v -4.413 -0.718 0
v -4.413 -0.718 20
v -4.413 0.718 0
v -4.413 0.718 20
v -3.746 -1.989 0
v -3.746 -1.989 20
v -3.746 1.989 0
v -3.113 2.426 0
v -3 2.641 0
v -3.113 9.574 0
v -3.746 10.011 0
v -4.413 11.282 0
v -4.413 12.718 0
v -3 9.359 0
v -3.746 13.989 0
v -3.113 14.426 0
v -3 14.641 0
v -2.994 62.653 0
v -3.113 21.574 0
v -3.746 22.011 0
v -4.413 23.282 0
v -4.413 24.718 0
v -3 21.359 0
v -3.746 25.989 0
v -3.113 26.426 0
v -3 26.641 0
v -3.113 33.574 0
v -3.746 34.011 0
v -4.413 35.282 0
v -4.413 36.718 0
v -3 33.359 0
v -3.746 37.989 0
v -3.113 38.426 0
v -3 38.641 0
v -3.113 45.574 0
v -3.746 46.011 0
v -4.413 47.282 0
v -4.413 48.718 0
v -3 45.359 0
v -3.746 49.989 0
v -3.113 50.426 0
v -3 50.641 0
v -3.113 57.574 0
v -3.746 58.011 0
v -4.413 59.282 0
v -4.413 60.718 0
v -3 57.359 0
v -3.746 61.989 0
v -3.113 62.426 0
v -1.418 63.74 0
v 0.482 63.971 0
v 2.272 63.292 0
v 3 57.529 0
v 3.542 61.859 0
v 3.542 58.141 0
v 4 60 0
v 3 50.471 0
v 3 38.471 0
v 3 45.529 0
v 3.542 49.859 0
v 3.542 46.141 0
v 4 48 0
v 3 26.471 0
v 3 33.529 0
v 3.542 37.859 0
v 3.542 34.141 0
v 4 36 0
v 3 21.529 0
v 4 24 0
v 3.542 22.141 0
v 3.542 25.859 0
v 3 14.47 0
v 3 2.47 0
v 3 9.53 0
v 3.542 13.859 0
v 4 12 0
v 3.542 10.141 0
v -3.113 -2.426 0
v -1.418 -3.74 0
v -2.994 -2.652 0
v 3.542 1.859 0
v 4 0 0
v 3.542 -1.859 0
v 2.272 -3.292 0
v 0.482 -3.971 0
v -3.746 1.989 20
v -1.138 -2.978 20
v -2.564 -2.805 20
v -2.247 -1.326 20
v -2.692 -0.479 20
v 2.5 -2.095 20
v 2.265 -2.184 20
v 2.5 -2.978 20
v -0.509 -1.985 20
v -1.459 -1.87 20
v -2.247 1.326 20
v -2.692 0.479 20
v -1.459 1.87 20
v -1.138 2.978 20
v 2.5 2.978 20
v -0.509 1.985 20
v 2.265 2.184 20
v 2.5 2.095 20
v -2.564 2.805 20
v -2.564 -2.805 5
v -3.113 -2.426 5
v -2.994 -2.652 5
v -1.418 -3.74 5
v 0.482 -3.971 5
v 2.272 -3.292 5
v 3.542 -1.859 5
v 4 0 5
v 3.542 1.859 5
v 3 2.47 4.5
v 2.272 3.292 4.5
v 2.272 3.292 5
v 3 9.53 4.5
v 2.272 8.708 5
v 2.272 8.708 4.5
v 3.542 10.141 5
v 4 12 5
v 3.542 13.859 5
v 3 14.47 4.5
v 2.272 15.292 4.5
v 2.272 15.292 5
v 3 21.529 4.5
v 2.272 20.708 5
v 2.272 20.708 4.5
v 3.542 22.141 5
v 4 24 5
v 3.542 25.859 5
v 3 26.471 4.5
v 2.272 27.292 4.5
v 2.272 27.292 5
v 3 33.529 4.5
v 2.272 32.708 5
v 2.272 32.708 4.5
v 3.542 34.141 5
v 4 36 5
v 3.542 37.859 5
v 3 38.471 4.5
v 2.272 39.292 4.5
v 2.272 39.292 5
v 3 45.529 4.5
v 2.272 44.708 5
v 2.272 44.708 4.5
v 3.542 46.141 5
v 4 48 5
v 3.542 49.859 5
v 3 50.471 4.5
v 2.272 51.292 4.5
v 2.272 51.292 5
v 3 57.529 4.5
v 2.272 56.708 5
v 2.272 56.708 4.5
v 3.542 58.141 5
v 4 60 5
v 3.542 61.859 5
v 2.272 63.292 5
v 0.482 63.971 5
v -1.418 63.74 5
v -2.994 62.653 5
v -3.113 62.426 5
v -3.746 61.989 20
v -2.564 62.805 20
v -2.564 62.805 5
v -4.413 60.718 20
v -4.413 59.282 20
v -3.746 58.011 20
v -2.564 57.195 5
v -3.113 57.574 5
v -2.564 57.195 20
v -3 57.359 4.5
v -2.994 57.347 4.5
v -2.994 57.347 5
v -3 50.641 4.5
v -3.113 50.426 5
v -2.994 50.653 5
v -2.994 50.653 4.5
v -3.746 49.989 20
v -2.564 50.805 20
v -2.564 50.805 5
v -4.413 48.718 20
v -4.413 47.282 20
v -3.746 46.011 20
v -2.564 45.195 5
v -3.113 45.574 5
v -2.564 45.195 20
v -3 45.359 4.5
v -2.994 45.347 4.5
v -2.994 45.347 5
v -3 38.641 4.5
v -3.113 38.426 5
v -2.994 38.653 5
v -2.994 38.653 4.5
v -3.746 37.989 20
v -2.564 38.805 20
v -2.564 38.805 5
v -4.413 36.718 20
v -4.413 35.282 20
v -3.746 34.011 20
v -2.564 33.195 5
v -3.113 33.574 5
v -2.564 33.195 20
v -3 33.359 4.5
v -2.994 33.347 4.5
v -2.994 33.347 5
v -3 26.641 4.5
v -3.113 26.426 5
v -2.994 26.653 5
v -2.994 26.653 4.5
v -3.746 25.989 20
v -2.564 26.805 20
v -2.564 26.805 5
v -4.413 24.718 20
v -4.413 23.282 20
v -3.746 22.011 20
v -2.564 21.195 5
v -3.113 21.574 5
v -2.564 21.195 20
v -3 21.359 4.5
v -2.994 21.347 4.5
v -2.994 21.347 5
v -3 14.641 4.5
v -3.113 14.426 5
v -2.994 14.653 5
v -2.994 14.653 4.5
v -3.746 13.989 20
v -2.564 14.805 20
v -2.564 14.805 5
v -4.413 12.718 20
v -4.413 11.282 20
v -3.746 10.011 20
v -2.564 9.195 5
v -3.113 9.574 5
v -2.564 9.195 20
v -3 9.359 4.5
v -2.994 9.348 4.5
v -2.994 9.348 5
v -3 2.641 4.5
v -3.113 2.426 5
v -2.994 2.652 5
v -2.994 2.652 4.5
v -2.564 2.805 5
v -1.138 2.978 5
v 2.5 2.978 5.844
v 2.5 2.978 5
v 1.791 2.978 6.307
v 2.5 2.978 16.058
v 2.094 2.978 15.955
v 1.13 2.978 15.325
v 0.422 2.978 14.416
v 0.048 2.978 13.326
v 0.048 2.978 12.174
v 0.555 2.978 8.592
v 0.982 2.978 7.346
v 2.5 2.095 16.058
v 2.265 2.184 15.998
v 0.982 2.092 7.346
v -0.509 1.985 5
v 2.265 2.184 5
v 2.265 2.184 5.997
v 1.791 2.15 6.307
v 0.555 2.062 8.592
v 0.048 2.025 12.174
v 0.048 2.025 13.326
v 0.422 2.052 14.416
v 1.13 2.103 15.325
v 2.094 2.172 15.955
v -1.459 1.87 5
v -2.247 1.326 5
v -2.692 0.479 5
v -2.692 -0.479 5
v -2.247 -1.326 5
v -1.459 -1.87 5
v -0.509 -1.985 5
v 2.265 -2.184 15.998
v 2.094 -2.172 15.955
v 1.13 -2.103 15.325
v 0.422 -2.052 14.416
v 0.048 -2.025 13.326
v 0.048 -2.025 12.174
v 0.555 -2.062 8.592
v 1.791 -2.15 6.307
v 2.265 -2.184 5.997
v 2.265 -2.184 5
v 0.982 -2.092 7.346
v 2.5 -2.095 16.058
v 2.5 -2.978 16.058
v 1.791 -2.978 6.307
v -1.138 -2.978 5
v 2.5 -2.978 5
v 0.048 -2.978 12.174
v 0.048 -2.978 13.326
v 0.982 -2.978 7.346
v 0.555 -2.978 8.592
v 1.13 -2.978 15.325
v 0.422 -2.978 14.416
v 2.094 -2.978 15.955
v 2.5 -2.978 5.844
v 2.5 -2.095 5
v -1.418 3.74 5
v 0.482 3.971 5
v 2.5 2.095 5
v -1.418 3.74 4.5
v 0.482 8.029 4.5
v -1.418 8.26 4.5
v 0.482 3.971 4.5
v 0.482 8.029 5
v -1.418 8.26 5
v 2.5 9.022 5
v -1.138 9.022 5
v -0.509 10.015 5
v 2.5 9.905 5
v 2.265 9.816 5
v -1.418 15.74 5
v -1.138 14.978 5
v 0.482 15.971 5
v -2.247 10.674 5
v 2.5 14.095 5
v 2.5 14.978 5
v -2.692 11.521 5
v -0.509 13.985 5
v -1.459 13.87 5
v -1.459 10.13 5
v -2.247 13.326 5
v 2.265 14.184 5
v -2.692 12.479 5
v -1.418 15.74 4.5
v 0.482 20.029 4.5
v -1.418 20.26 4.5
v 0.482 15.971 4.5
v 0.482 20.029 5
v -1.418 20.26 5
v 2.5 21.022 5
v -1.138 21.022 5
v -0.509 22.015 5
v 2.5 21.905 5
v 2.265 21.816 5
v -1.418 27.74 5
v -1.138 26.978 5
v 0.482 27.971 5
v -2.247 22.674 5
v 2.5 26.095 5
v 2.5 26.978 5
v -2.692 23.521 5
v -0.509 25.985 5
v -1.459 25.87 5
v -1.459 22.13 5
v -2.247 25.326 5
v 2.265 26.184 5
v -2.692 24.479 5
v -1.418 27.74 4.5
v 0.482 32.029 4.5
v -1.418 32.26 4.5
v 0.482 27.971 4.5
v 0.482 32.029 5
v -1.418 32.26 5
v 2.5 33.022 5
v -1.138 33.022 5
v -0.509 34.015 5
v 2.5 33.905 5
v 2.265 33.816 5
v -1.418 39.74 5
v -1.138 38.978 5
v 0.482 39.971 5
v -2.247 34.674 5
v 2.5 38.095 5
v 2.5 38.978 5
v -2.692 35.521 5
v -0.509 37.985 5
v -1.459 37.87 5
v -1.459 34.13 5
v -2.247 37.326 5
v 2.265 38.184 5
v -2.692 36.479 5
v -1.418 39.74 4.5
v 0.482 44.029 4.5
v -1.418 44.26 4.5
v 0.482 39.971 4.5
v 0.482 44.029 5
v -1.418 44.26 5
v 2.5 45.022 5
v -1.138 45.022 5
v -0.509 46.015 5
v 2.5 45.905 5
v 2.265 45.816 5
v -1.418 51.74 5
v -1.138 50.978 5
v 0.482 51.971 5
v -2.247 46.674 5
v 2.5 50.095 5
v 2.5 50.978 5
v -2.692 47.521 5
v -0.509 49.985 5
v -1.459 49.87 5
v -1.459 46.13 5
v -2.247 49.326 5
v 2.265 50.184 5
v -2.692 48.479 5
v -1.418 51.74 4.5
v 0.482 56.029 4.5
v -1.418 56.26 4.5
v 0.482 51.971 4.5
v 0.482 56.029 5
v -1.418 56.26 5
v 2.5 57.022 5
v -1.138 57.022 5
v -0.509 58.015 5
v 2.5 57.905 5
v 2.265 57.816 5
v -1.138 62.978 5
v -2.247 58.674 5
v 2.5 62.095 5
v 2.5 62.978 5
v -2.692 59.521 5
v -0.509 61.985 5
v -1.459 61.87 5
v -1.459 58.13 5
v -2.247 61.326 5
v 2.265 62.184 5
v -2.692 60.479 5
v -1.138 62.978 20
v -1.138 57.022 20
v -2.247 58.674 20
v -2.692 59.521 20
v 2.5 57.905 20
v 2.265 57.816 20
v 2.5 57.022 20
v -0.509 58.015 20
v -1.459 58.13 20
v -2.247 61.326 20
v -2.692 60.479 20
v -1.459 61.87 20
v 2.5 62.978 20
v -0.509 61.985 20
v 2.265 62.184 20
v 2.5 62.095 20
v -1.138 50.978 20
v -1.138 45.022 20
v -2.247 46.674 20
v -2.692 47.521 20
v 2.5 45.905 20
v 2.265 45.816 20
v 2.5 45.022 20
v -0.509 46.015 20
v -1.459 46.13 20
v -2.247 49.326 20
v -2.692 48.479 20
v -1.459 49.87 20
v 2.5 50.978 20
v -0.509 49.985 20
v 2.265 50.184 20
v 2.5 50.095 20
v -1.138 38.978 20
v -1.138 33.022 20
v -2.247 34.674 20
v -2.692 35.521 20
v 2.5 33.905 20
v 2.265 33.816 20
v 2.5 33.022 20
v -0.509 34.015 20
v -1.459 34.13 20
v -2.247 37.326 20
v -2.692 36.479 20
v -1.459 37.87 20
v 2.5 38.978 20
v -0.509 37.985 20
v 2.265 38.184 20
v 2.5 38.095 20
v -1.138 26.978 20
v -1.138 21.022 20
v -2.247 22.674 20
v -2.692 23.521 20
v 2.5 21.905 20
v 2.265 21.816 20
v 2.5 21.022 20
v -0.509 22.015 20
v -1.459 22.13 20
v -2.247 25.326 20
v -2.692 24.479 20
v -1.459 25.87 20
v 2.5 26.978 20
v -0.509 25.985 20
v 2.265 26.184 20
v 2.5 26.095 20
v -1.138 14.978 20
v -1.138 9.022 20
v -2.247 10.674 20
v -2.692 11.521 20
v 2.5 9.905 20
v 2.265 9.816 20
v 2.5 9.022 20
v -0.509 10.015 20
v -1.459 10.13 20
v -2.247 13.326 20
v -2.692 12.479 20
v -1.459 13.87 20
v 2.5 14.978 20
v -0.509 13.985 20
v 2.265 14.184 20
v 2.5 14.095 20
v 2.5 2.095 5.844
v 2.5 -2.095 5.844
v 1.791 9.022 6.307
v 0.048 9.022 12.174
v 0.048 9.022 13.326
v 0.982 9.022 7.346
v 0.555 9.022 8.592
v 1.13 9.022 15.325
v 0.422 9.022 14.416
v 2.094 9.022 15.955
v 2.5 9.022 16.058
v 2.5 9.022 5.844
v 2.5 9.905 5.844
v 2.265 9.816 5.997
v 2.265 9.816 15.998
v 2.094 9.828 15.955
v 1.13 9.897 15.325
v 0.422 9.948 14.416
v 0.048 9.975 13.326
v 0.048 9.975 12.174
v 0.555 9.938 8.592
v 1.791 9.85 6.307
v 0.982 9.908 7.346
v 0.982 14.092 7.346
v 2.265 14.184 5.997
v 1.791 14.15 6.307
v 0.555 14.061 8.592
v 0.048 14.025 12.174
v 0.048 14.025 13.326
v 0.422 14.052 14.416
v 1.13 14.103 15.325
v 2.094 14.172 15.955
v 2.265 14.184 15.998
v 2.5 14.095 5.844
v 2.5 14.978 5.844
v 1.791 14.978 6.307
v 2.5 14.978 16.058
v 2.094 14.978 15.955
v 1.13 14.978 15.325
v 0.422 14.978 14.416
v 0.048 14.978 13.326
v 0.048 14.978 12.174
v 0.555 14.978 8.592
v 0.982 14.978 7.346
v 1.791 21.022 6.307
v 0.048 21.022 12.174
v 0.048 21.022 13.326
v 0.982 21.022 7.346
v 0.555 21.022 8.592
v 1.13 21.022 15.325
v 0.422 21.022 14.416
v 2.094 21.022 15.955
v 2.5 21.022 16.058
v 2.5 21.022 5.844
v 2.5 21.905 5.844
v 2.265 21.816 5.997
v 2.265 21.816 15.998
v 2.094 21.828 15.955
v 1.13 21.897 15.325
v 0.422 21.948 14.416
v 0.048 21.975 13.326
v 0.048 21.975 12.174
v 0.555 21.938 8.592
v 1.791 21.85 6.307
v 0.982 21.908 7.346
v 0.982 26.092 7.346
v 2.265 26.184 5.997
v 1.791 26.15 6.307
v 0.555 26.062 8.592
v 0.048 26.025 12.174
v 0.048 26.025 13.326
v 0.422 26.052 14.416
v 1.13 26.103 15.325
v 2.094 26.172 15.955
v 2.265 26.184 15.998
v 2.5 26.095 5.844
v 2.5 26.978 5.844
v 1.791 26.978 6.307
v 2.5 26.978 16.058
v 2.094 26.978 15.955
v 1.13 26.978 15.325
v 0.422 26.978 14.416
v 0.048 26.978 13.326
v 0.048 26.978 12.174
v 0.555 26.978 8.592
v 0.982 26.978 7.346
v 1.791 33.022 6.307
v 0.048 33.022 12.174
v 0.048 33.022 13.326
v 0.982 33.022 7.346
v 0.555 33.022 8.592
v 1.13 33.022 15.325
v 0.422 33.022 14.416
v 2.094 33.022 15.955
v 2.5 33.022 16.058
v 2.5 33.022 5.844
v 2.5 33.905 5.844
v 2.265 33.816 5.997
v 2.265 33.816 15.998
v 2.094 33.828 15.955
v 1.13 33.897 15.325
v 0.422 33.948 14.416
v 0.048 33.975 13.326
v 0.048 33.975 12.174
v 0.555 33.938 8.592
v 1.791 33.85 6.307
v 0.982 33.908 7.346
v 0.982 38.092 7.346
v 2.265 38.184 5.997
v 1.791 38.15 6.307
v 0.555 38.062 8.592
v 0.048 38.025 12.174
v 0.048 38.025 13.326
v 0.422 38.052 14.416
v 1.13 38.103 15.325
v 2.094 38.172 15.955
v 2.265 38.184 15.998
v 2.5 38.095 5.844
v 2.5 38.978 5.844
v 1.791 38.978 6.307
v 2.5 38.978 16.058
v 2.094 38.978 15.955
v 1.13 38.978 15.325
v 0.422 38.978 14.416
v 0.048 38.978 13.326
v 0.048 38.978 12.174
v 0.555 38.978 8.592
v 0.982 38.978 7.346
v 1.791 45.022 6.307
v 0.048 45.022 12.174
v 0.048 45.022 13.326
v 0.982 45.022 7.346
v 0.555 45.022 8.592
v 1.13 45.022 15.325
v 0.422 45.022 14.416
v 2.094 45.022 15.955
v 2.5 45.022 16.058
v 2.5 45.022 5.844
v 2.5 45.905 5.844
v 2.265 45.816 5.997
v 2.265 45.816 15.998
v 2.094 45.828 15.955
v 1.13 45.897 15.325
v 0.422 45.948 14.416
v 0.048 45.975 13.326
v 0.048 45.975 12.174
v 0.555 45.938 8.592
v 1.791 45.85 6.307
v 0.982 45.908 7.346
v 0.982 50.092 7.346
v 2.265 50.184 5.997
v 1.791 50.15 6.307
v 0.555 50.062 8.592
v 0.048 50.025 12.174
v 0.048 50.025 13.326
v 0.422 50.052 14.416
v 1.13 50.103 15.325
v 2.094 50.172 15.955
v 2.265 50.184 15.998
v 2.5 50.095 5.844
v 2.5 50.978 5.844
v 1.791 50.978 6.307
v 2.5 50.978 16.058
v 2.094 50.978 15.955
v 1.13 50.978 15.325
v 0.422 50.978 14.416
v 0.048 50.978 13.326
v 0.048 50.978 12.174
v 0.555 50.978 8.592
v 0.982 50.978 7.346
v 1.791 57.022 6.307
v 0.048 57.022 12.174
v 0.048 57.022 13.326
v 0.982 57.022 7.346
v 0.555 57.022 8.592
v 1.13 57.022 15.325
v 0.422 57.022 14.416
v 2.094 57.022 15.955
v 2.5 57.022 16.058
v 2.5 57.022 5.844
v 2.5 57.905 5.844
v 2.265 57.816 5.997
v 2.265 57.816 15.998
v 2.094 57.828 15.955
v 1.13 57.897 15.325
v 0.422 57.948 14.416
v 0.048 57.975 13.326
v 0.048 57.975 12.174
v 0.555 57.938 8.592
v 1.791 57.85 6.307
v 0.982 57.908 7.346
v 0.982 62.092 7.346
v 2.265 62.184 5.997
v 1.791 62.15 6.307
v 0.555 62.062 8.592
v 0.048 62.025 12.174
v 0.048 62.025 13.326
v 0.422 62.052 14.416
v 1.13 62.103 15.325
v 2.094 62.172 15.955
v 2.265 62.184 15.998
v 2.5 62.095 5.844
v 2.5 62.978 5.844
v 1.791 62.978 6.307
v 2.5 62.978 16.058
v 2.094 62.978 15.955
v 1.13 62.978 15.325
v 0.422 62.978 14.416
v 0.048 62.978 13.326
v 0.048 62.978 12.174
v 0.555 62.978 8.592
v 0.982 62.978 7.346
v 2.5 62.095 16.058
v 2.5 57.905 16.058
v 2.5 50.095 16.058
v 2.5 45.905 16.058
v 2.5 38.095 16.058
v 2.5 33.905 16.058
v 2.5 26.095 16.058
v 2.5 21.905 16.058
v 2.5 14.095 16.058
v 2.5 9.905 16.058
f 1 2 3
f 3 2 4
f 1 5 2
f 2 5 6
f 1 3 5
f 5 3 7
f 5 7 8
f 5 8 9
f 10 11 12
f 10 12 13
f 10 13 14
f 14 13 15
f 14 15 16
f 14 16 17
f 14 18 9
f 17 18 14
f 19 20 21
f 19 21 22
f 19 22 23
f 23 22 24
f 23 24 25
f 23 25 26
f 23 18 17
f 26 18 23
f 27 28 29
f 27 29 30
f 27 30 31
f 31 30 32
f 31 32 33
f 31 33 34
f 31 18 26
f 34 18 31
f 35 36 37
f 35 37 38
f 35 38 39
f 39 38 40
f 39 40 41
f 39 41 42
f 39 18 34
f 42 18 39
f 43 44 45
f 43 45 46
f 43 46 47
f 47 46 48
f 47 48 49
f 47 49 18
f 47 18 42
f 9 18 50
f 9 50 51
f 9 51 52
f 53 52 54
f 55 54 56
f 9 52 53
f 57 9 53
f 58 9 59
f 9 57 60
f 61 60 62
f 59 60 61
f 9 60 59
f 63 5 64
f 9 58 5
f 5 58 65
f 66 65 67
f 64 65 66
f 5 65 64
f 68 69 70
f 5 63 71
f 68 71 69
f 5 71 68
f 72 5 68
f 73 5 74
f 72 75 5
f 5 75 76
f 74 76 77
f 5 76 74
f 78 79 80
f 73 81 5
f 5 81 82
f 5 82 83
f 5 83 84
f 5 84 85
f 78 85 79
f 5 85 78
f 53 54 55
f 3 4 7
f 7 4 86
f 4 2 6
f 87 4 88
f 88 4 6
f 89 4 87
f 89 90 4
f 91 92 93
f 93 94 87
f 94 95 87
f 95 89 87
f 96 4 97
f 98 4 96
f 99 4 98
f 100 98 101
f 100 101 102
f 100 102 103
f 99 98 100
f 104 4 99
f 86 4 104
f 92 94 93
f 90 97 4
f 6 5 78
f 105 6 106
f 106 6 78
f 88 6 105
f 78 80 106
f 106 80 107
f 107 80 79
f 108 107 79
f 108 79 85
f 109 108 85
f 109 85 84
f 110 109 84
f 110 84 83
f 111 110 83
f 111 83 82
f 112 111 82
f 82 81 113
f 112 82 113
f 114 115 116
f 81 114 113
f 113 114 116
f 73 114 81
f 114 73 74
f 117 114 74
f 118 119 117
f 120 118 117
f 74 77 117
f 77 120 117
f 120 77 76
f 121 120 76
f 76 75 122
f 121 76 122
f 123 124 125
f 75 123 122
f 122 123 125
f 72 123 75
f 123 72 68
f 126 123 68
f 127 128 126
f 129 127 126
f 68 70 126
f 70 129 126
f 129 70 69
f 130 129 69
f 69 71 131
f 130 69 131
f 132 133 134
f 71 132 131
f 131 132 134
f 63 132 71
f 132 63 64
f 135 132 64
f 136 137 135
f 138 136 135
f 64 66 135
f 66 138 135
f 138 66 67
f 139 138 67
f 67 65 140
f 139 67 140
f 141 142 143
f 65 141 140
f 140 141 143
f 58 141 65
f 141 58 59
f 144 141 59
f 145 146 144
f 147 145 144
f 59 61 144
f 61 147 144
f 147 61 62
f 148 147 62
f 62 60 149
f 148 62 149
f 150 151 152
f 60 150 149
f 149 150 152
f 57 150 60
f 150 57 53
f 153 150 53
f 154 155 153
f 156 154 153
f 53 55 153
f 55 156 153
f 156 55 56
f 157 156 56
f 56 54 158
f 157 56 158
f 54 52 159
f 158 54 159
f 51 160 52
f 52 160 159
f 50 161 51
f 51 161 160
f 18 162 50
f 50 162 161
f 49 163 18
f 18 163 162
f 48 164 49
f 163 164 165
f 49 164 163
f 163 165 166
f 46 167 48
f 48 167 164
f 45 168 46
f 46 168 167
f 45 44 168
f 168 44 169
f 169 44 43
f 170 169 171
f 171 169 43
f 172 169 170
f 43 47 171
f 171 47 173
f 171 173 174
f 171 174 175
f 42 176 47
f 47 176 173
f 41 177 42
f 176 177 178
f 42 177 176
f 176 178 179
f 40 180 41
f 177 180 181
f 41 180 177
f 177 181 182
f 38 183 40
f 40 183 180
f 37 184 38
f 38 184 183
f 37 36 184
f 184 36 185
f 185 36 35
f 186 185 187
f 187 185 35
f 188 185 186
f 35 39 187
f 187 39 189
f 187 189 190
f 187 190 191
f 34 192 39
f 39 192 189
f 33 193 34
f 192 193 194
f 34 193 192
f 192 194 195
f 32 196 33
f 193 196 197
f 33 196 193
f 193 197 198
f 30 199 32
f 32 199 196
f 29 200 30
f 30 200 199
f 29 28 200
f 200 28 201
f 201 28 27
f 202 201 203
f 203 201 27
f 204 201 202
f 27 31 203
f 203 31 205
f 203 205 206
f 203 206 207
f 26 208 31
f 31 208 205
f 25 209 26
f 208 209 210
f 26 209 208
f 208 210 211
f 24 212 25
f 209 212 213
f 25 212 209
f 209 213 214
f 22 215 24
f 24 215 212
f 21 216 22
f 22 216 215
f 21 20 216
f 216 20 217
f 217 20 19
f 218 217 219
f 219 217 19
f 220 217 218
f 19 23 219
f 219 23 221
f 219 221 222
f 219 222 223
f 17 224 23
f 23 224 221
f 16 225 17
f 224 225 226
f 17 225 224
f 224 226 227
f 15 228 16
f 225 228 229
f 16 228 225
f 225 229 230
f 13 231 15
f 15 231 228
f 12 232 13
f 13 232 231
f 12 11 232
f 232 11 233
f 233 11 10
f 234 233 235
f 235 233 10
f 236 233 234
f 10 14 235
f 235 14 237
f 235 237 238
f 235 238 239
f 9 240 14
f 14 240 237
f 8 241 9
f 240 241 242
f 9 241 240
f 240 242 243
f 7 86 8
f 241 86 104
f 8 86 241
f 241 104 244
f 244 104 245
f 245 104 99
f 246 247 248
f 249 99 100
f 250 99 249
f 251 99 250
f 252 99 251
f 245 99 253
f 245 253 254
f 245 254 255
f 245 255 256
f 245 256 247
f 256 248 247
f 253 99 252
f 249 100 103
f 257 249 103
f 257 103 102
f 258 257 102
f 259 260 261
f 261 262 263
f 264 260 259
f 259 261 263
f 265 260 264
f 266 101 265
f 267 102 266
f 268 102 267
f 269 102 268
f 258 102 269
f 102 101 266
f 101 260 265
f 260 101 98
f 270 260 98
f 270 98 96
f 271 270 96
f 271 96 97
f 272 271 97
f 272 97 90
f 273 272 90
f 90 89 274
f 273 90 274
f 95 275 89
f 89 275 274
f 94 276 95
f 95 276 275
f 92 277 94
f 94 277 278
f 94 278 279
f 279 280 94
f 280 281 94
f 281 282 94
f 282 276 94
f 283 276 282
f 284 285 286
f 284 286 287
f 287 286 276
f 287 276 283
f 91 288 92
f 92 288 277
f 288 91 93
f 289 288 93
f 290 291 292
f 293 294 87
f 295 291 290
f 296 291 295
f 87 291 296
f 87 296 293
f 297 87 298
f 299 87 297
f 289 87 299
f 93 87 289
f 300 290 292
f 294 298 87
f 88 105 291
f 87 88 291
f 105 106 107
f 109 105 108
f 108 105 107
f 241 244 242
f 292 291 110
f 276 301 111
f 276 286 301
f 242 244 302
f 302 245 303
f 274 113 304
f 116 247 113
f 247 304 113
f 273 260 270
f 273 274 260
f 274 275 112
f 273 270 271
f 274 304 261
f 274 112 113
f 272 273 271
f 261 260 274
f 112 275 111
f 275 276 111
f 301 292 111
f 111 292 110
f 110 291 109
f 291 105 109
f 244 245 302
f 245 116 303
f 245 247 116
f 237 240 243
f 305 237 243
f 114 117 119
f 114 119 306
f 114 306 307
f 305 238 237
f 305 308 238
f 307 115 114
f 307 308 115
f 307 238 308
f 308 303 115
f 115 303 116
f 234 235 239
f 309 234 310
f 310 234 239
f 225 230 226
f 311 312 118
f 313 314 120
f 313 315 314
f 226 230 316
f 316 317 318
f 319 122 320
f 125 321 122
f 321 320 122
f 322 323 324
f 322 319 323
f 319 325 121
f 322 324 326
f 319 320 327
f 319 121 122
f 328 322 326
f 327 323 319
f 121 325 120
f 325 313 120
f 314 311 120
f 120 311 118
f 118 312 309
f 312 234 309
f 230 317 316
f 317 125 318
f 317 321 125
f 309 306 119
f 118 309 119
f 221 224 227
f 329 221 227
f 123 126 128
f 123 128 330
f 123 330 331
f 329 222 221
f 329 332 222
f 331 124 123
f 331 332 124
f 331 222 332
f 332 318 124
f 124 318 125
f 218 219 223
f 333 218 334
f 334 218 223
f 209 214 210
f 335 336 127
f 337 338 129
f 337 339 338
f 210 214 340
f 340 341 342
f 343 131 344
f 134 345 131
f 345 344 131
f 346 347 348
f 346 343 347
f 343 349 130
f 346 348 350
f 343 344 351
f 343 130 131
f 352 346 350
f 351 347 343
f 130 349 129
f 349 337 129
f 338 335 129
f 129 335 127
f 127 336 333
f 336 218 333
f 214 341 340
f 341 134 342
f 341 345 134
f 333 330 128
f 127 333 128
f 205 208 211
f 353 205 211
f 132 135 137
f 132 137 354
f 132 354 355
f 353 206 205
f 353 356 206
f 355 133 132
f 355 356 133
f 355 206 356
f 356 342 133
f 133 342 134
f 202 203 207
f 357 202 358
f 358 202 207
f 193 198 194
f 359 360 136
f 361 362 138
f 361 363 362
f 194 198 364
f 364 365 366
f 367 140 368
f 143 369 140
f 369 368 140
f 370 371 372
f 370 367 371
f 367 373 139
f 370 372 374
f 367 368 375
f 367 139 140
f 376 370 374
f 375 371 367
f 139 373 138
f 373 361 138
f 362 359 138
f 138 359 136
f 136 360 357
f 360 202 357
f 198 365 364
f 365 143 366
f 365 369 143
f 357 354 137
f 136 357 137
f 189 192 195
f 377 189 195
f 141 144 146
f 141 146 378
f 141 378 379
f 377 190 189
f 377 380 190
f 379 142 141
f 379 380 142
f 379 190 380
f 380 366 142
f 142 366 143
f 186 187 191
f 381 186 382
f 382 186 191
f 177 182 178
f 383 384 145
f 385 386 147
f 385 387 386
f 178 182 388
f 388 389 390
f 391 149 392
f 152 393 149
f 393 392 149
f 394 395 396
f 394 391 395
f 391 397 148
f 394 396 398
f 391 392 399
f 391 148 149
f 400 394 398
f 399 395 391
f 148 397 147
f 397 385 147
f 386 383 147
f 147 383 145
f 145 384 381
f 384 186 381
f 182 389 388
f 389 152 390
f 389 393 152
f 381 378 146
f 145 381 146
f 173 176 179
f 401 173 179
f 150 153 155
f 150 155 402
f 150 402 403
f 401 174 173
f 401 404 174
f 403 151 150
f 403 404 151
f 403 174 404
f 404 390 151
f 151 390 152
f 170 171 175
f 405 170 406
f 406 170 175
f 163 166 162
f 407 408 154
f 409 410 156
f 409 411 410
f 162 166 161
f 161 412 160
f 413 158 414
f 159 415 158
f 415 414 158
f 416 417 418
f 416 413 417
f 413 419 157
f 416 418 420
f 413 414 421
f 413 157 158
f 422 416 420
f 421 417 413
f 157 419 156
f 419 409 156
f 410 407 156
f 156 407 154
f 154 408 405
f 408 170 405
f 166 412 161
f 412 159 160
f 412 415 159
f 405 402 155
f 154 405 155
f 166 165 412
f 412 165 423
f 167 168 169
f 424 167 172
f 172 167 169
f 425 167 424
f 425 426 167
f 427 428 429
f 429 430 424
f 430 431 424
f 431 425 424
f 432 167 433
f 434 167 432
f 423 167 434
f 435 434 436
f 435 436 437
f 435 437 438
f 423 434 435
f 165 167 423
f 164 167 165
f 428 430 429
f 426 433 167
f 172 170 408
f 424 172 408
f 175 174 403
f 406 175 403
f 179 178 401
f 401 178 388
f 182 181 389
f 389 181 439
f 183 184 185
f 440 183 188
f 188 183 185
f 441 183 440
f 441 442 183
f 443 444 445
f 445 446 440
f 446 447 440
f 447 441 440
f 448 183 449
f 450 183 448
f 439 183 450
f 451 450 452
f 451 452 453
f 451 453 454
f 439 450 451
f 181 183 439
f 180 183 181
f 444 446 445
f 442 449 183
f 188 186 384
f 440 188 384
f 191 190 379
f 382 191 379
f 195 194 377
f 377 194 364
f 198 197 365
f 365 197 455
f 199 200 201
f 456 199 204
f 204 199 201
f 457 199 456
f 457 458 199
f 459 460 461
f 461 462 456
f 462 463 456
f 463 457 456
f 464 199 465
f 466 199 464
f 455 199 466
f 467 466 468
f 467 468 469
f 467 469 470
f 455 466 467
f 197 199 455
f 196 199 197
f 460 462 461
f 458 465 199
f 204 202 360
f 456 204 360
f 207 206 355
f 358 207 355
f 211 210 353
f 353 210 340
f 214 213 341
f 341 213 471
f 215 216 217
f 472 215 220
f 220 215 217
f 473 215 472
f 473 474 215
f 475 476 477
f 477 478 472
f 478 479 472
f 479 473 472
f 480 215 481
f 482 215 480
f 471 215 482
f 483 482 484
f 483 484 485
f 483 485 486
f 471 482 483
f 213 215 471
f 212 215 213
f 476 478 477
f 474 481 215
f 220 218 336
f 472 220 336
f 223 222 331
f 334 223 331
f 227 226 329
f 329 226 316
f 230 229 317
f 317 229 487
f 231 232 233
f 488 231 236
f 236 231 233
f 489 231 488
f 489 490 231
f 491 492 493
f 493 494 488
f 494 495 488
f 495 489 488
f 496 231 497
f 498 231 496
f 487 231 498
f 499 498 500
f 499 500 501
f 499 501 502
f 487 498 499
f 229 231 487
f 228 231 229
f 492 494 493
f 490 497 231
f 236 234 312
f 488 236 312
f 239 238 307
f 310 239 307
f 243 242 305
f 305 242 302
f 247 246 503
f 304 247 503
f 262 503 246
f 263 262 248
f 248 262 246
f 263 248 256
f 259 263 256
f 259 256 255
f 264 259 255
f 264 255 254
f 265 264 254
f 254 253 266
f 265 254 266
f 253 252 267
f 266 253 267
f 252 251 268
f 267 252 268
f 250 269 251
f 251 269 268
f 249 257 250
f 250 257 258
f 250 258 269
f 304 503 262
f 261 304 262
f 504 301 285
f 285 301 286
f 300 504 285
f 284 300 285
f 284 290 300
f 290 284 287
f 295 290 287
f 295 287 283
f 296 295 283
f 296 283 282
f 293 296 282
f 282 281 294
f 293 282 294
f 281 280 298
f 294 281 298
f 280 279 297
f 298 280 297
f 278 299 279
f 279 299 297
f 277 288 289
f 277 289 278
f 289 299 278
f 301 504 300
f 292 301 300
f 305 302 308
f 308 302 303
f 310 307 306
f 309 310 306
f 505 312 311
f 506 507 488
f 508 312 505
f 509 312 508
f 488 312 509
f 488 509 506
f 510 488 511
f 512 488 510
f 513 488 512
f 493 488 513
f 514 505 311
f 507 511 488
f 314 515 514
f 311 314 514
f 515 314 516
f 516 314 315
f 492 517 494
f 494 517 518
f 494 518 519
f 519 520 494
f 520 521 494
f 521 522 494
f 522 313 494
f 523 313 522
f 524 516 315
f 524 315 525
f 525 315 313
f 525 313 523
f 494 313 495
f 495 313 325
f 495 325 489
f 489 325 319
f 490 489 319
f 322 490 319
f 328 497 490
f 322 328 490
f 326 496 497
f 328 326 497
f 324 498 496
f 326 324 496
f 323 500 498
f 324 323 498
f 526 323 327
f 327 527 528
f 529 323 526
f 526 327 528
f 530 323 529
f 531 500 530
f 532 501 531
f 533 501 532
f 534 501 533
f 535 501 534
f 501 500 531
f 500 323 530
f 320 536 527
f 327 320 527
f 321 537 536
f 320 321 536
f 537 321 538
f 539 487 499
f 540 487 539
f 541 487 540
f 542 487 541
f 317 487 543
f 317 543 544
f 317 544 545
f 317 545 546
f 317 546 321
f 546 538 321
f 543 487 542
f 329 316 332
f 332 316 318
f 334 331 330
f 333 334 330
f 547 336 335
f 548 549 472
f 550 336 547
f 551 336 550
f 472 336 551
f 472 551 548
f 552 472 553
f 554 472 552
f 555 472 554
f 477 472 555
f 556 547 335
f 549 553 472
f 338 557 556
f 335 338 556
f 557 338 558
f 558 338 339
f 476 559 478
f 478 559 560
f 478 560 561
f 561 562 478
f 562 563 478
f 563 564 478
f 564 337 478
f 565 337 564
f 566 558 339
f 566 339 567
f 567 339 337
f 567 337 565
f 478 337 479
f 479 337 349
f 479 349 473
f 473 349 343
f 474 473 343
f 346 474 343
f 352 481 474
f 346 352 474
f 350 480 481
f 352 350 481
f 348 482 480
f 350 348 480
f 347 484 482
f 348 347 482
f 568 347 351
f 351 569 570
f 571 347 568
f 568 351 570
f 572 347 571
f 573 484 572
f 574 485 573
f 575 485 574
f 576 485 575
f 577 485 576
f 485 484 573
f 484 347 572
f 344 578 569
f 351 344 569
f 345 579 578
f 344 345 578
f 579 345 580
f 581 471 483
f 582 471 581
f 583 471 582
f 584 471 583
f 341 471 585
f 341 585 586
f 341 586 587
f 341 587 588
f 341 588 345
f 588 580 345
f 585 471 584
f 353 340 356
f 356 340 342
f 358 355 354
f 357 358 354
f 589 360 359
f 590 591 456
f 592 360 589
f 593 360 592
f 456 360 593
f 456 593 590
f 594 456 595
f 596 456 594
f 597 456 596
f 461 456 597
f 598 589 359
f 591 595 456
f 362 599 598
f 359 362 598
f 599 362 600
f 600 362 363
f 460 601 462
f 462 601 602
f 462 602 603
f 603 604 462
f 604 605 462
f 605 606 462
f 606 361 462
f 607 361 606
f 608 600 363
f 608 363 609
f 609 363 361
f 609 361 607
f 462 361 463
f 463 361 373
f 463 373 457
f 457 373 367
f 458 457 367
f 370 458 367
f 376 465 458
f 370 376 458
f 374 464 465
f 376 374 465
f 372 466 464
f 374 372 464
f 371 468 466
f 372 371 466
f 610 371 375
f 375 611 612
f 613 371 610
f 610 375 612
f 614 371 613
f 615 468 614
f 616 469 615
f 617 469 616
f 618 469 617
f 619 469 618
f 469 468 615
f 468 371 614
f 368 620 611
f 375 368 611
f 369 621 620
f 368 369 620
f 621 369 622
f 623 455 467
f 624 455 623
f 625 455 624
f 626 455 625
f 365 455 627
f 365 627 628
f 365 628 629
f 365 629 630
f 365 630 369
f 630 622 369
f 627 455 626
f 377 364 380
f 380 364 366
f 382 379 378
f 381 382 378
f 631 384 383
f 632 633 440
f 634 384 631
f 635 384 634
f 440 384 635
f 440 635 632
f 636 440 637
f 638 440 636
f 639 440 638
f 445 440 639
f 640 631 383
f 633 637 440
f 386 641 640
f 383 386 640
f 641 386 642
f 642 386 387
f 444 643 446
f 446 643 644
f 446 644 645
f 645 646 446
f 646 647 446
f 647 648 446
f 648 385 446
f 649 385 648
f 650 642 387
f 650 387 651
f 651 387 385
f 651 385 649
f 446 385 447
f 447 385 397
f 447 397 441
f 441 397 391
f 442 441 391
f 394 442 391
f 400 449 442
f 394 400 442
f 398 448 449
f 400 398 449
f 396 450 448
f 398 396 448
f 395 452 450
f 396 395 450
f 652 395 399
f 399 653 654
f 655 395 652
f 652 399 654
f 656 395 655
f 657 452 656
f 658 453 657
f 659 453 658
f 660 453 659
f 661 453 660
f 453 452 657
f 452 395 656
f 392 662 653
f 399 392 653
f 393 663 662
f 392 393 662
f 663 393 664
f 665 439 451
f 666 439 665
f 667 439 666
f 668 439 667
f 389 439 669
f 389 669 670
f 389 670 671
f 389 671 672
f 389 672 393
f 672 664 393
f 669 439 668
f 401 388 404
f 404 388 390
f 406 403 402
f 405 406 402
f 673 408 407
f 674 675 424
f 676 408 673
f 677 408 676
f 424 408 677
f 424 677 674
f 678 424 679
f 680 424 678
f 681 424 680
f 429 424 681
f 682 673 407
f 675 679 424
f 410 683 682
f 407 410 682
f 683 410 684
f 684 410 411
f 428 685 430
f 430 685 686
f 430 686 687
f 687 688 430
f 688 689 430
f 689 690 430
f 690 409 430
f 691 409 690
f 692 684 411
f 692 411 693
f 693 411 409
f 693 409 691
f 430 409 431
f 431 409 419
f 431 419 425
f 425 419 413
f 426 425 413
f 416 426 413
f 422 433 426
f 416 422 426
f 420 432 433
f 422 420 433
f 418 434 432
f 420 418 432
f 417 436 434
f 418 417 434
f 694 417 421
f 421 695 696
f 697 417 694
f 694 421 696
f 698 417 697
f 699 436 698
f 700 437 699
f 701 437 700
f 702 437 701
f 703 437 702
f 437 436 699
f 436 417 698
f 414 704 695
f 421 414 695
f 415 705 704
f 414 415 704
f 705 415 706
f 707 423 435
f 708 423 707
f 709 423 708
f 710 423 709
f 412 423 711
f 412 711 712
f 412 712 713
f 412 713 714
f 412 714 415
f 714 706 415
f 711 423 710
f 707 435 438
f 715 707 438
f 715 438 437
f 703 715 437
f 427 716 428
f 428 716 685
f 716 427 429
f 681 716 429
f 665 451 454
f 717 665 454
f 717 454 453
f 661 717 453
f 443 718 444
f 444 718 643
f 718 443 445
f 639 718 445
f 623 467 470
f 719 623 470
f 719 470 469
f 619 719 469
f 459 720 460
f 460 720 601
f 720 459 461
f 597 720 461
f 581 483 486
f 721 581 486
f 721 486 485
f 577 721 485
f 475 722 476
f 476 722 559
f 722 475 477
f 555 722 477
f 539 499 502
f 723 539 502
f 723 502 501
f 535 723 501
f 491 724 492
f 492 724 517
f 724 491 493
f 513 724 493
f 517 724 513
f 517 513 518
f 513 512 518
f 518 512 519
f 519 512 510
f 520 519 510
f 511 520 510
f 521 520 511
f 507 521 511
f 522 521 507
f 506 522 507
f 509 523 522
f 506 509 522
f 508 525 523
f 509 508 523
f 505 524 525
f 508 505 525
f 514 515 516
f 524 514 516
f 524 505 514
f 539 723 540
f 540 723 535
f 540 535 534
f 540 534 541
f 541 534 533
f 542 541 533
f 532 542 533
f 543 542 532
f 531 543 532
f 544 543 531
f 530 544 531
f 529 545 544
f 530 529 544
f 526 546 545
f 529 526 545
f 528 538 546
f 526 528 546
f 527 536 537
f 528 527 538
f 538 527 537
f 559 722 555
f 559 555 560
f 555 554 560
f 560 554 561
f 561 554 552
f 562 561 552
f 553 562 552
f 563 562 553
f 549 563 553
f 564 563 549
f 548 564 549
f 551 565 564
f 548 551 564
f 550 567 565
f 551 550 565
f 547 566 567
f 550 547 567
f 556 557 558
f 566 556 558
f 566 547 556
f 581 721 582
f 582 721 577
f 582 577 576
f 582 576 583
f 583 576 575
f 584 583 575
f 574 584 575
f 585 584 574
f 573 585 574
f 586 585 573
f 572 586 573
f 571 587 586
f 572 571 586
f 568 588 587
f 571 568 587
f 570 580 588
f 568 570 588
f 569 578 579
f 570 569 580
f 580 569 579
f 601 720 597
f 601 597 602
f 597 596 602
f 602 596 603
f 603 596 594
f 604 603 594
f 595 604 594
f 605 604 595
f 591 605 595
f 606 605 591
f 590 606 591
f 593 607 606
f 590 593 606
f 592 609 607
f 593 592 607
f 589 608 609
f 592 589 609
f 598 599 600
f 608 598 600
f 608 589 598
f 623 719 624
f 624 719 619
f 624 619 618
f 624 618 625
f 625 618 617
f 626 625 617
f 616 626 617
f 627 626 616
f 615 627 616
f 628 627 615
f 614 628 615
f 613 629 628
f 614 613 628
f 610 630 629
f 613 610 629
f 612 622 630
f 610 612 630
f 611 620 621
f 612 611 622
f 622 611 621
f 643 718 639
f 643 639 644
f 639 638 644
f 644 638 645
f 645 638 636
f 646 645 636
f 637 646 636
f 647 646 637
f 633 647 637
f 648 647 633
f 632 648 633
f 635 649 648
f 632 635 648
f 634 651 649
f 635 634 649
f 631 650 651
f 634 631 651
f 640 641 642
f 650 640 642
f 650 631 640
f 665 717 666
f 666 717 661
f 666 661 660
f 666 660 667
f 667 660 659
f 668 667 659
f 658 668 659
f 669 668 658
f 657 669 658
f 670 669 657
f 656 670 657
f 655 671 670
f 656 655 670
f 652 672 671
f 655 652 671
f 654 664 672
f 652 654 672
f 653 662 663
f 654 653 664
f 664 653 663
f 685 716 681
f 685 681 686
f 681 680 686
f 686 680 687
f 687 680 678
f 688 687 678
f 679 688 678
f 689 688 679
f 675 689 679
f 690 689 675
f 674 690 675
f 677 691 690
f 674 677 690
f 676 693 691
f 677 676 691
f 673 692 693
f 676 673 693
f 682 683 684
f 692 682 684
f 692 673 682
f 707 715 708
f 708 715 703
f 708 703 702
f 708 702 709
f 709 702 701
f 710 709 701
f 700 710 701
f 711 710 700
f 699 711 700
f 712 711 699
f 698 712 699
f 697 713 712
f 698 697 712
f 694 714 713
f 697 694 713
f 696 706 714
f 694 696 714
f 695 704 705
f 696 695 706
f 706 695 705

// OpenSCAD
// file: loom_module.scad
/*
    Openscad Rubber-band Loom.

    This is a rubber-band loom for weaving.

    Copyright (C) 2014. Tim Molteno, tim@molteno.net
  
    This program is free software: you can redistribute it and/or modify
    it under the terms of the GNU General Public License as published by
    the Free Software Foundation, either version 3 of the License, or
    (at your option) any later version.

    This program is distributed in the hope that it will be useful,
    but WITHOUT ANY WARRANTY; without even the implied warranty of
    MERCHANTABILITY or FITNESS FOR A PARTICULAR PURPOSE.  See the
    GNU General Public License for more details.

    You should have received a copy of the GNU General Public License
    along with this program.  If not, see <http://www.gnu.org/licenses/>.
*/

post_height  = 18.0;  /* Height of the Loom from Bottom to top */
base_height  = 4.0;   /* Height of the base (mm) */

  
module post(h) {
  difference() {
    hull() {
      translate([ 5,0,0]) cylinder(r = 3, h=h, $fn=13);
      translate([-1.5,0,0]) cylinder(r = 3, h=h, $fn=13);
    }
    hull() {
      translate([-0.75,0,-1]) cylinder(r = 2.0, h=h + 2, $fn=13);
      translate([2,0,-1]) cylinder(r = 2.2, h=h + 2, $fn=13);
    }
    translate([2.5,0, base_height+3.75]) hull() {
      translate([2,0,1.5]) rotate([90,0,0]) cylinder(r=4, h=10, center=true, $fn=19);
      translate([1,0,5]) rotate([90,0,0]) cylinder(r=3.5, h=10, center=true, $fn=19);
    }
    translate([2.5,-5,-2.5]) cube([10,10,h+5]);
  }
  cylinder(r=4, h=base_height+1);
}


module base(width, center, step_angle) {
  
  for (angle = [0:step_angle:(360 - step_angle)]) {
    rotate(angle)  translate([width/2-1.5,0,0]) post(post_height);
  }
  difference() {
    cylinder(r=width/2, h=base_height,$fn=31);
    translate([0,0,-1]) cylinder(r=center/2, h=12, $fn=31); // Center Hole
  }
}


module loom(n_posts, post_spacing) {

  width = (post_spacing*n_posts) / 3.1415;
  center = width - 12.0;
  step_angle = 360 / n_posts;


  intersection() {
    base(width, center, step_angle);
    cylinder(r=width/2, h=50, $fn=31);
  }
}


//loom(8, 12);
post(18);
// main file
/*
    OpenSCAD Rubber-band Loom.

    This is a dragon scale rubber-band loom for weaving.

    Copyright (C) 2014. Linus Molteno, linus@molteno.net
  
    This program is free software: you can redistribute it and/or modify
    it under the terms of the GNU General Public License as published by
    the Free Software Foundation, either version 3 of the License, or
    (at your option) any later version.

    This program is distributed in the hope that it will be useful,
    but WITHOUT ANY WARRANTY; without even the implied warranty of
    MERCHANTABILITY or FITNESS FOR A PARTICULAR PURPOSE.  See the
    GNU General Public License for more details.

    You should have received a copy of the GNU General Public License
    along with this program.  If not, see <http://www.gnu.org/licenses/>.
*/

use<loom_module.scad>;

post(h=20);
w=12;
n_posts=6;
//Base
hull() {
  translate([0,0,0])cylinder(r=3, h=4.5);
  translate([0,(n_posts-1)*w,0])cylinder(r=3, h=4.5);
}
//Posts
for (i = [0:n_posts-1]) {
  translate([0,w*i,0])post(h=20);
}
